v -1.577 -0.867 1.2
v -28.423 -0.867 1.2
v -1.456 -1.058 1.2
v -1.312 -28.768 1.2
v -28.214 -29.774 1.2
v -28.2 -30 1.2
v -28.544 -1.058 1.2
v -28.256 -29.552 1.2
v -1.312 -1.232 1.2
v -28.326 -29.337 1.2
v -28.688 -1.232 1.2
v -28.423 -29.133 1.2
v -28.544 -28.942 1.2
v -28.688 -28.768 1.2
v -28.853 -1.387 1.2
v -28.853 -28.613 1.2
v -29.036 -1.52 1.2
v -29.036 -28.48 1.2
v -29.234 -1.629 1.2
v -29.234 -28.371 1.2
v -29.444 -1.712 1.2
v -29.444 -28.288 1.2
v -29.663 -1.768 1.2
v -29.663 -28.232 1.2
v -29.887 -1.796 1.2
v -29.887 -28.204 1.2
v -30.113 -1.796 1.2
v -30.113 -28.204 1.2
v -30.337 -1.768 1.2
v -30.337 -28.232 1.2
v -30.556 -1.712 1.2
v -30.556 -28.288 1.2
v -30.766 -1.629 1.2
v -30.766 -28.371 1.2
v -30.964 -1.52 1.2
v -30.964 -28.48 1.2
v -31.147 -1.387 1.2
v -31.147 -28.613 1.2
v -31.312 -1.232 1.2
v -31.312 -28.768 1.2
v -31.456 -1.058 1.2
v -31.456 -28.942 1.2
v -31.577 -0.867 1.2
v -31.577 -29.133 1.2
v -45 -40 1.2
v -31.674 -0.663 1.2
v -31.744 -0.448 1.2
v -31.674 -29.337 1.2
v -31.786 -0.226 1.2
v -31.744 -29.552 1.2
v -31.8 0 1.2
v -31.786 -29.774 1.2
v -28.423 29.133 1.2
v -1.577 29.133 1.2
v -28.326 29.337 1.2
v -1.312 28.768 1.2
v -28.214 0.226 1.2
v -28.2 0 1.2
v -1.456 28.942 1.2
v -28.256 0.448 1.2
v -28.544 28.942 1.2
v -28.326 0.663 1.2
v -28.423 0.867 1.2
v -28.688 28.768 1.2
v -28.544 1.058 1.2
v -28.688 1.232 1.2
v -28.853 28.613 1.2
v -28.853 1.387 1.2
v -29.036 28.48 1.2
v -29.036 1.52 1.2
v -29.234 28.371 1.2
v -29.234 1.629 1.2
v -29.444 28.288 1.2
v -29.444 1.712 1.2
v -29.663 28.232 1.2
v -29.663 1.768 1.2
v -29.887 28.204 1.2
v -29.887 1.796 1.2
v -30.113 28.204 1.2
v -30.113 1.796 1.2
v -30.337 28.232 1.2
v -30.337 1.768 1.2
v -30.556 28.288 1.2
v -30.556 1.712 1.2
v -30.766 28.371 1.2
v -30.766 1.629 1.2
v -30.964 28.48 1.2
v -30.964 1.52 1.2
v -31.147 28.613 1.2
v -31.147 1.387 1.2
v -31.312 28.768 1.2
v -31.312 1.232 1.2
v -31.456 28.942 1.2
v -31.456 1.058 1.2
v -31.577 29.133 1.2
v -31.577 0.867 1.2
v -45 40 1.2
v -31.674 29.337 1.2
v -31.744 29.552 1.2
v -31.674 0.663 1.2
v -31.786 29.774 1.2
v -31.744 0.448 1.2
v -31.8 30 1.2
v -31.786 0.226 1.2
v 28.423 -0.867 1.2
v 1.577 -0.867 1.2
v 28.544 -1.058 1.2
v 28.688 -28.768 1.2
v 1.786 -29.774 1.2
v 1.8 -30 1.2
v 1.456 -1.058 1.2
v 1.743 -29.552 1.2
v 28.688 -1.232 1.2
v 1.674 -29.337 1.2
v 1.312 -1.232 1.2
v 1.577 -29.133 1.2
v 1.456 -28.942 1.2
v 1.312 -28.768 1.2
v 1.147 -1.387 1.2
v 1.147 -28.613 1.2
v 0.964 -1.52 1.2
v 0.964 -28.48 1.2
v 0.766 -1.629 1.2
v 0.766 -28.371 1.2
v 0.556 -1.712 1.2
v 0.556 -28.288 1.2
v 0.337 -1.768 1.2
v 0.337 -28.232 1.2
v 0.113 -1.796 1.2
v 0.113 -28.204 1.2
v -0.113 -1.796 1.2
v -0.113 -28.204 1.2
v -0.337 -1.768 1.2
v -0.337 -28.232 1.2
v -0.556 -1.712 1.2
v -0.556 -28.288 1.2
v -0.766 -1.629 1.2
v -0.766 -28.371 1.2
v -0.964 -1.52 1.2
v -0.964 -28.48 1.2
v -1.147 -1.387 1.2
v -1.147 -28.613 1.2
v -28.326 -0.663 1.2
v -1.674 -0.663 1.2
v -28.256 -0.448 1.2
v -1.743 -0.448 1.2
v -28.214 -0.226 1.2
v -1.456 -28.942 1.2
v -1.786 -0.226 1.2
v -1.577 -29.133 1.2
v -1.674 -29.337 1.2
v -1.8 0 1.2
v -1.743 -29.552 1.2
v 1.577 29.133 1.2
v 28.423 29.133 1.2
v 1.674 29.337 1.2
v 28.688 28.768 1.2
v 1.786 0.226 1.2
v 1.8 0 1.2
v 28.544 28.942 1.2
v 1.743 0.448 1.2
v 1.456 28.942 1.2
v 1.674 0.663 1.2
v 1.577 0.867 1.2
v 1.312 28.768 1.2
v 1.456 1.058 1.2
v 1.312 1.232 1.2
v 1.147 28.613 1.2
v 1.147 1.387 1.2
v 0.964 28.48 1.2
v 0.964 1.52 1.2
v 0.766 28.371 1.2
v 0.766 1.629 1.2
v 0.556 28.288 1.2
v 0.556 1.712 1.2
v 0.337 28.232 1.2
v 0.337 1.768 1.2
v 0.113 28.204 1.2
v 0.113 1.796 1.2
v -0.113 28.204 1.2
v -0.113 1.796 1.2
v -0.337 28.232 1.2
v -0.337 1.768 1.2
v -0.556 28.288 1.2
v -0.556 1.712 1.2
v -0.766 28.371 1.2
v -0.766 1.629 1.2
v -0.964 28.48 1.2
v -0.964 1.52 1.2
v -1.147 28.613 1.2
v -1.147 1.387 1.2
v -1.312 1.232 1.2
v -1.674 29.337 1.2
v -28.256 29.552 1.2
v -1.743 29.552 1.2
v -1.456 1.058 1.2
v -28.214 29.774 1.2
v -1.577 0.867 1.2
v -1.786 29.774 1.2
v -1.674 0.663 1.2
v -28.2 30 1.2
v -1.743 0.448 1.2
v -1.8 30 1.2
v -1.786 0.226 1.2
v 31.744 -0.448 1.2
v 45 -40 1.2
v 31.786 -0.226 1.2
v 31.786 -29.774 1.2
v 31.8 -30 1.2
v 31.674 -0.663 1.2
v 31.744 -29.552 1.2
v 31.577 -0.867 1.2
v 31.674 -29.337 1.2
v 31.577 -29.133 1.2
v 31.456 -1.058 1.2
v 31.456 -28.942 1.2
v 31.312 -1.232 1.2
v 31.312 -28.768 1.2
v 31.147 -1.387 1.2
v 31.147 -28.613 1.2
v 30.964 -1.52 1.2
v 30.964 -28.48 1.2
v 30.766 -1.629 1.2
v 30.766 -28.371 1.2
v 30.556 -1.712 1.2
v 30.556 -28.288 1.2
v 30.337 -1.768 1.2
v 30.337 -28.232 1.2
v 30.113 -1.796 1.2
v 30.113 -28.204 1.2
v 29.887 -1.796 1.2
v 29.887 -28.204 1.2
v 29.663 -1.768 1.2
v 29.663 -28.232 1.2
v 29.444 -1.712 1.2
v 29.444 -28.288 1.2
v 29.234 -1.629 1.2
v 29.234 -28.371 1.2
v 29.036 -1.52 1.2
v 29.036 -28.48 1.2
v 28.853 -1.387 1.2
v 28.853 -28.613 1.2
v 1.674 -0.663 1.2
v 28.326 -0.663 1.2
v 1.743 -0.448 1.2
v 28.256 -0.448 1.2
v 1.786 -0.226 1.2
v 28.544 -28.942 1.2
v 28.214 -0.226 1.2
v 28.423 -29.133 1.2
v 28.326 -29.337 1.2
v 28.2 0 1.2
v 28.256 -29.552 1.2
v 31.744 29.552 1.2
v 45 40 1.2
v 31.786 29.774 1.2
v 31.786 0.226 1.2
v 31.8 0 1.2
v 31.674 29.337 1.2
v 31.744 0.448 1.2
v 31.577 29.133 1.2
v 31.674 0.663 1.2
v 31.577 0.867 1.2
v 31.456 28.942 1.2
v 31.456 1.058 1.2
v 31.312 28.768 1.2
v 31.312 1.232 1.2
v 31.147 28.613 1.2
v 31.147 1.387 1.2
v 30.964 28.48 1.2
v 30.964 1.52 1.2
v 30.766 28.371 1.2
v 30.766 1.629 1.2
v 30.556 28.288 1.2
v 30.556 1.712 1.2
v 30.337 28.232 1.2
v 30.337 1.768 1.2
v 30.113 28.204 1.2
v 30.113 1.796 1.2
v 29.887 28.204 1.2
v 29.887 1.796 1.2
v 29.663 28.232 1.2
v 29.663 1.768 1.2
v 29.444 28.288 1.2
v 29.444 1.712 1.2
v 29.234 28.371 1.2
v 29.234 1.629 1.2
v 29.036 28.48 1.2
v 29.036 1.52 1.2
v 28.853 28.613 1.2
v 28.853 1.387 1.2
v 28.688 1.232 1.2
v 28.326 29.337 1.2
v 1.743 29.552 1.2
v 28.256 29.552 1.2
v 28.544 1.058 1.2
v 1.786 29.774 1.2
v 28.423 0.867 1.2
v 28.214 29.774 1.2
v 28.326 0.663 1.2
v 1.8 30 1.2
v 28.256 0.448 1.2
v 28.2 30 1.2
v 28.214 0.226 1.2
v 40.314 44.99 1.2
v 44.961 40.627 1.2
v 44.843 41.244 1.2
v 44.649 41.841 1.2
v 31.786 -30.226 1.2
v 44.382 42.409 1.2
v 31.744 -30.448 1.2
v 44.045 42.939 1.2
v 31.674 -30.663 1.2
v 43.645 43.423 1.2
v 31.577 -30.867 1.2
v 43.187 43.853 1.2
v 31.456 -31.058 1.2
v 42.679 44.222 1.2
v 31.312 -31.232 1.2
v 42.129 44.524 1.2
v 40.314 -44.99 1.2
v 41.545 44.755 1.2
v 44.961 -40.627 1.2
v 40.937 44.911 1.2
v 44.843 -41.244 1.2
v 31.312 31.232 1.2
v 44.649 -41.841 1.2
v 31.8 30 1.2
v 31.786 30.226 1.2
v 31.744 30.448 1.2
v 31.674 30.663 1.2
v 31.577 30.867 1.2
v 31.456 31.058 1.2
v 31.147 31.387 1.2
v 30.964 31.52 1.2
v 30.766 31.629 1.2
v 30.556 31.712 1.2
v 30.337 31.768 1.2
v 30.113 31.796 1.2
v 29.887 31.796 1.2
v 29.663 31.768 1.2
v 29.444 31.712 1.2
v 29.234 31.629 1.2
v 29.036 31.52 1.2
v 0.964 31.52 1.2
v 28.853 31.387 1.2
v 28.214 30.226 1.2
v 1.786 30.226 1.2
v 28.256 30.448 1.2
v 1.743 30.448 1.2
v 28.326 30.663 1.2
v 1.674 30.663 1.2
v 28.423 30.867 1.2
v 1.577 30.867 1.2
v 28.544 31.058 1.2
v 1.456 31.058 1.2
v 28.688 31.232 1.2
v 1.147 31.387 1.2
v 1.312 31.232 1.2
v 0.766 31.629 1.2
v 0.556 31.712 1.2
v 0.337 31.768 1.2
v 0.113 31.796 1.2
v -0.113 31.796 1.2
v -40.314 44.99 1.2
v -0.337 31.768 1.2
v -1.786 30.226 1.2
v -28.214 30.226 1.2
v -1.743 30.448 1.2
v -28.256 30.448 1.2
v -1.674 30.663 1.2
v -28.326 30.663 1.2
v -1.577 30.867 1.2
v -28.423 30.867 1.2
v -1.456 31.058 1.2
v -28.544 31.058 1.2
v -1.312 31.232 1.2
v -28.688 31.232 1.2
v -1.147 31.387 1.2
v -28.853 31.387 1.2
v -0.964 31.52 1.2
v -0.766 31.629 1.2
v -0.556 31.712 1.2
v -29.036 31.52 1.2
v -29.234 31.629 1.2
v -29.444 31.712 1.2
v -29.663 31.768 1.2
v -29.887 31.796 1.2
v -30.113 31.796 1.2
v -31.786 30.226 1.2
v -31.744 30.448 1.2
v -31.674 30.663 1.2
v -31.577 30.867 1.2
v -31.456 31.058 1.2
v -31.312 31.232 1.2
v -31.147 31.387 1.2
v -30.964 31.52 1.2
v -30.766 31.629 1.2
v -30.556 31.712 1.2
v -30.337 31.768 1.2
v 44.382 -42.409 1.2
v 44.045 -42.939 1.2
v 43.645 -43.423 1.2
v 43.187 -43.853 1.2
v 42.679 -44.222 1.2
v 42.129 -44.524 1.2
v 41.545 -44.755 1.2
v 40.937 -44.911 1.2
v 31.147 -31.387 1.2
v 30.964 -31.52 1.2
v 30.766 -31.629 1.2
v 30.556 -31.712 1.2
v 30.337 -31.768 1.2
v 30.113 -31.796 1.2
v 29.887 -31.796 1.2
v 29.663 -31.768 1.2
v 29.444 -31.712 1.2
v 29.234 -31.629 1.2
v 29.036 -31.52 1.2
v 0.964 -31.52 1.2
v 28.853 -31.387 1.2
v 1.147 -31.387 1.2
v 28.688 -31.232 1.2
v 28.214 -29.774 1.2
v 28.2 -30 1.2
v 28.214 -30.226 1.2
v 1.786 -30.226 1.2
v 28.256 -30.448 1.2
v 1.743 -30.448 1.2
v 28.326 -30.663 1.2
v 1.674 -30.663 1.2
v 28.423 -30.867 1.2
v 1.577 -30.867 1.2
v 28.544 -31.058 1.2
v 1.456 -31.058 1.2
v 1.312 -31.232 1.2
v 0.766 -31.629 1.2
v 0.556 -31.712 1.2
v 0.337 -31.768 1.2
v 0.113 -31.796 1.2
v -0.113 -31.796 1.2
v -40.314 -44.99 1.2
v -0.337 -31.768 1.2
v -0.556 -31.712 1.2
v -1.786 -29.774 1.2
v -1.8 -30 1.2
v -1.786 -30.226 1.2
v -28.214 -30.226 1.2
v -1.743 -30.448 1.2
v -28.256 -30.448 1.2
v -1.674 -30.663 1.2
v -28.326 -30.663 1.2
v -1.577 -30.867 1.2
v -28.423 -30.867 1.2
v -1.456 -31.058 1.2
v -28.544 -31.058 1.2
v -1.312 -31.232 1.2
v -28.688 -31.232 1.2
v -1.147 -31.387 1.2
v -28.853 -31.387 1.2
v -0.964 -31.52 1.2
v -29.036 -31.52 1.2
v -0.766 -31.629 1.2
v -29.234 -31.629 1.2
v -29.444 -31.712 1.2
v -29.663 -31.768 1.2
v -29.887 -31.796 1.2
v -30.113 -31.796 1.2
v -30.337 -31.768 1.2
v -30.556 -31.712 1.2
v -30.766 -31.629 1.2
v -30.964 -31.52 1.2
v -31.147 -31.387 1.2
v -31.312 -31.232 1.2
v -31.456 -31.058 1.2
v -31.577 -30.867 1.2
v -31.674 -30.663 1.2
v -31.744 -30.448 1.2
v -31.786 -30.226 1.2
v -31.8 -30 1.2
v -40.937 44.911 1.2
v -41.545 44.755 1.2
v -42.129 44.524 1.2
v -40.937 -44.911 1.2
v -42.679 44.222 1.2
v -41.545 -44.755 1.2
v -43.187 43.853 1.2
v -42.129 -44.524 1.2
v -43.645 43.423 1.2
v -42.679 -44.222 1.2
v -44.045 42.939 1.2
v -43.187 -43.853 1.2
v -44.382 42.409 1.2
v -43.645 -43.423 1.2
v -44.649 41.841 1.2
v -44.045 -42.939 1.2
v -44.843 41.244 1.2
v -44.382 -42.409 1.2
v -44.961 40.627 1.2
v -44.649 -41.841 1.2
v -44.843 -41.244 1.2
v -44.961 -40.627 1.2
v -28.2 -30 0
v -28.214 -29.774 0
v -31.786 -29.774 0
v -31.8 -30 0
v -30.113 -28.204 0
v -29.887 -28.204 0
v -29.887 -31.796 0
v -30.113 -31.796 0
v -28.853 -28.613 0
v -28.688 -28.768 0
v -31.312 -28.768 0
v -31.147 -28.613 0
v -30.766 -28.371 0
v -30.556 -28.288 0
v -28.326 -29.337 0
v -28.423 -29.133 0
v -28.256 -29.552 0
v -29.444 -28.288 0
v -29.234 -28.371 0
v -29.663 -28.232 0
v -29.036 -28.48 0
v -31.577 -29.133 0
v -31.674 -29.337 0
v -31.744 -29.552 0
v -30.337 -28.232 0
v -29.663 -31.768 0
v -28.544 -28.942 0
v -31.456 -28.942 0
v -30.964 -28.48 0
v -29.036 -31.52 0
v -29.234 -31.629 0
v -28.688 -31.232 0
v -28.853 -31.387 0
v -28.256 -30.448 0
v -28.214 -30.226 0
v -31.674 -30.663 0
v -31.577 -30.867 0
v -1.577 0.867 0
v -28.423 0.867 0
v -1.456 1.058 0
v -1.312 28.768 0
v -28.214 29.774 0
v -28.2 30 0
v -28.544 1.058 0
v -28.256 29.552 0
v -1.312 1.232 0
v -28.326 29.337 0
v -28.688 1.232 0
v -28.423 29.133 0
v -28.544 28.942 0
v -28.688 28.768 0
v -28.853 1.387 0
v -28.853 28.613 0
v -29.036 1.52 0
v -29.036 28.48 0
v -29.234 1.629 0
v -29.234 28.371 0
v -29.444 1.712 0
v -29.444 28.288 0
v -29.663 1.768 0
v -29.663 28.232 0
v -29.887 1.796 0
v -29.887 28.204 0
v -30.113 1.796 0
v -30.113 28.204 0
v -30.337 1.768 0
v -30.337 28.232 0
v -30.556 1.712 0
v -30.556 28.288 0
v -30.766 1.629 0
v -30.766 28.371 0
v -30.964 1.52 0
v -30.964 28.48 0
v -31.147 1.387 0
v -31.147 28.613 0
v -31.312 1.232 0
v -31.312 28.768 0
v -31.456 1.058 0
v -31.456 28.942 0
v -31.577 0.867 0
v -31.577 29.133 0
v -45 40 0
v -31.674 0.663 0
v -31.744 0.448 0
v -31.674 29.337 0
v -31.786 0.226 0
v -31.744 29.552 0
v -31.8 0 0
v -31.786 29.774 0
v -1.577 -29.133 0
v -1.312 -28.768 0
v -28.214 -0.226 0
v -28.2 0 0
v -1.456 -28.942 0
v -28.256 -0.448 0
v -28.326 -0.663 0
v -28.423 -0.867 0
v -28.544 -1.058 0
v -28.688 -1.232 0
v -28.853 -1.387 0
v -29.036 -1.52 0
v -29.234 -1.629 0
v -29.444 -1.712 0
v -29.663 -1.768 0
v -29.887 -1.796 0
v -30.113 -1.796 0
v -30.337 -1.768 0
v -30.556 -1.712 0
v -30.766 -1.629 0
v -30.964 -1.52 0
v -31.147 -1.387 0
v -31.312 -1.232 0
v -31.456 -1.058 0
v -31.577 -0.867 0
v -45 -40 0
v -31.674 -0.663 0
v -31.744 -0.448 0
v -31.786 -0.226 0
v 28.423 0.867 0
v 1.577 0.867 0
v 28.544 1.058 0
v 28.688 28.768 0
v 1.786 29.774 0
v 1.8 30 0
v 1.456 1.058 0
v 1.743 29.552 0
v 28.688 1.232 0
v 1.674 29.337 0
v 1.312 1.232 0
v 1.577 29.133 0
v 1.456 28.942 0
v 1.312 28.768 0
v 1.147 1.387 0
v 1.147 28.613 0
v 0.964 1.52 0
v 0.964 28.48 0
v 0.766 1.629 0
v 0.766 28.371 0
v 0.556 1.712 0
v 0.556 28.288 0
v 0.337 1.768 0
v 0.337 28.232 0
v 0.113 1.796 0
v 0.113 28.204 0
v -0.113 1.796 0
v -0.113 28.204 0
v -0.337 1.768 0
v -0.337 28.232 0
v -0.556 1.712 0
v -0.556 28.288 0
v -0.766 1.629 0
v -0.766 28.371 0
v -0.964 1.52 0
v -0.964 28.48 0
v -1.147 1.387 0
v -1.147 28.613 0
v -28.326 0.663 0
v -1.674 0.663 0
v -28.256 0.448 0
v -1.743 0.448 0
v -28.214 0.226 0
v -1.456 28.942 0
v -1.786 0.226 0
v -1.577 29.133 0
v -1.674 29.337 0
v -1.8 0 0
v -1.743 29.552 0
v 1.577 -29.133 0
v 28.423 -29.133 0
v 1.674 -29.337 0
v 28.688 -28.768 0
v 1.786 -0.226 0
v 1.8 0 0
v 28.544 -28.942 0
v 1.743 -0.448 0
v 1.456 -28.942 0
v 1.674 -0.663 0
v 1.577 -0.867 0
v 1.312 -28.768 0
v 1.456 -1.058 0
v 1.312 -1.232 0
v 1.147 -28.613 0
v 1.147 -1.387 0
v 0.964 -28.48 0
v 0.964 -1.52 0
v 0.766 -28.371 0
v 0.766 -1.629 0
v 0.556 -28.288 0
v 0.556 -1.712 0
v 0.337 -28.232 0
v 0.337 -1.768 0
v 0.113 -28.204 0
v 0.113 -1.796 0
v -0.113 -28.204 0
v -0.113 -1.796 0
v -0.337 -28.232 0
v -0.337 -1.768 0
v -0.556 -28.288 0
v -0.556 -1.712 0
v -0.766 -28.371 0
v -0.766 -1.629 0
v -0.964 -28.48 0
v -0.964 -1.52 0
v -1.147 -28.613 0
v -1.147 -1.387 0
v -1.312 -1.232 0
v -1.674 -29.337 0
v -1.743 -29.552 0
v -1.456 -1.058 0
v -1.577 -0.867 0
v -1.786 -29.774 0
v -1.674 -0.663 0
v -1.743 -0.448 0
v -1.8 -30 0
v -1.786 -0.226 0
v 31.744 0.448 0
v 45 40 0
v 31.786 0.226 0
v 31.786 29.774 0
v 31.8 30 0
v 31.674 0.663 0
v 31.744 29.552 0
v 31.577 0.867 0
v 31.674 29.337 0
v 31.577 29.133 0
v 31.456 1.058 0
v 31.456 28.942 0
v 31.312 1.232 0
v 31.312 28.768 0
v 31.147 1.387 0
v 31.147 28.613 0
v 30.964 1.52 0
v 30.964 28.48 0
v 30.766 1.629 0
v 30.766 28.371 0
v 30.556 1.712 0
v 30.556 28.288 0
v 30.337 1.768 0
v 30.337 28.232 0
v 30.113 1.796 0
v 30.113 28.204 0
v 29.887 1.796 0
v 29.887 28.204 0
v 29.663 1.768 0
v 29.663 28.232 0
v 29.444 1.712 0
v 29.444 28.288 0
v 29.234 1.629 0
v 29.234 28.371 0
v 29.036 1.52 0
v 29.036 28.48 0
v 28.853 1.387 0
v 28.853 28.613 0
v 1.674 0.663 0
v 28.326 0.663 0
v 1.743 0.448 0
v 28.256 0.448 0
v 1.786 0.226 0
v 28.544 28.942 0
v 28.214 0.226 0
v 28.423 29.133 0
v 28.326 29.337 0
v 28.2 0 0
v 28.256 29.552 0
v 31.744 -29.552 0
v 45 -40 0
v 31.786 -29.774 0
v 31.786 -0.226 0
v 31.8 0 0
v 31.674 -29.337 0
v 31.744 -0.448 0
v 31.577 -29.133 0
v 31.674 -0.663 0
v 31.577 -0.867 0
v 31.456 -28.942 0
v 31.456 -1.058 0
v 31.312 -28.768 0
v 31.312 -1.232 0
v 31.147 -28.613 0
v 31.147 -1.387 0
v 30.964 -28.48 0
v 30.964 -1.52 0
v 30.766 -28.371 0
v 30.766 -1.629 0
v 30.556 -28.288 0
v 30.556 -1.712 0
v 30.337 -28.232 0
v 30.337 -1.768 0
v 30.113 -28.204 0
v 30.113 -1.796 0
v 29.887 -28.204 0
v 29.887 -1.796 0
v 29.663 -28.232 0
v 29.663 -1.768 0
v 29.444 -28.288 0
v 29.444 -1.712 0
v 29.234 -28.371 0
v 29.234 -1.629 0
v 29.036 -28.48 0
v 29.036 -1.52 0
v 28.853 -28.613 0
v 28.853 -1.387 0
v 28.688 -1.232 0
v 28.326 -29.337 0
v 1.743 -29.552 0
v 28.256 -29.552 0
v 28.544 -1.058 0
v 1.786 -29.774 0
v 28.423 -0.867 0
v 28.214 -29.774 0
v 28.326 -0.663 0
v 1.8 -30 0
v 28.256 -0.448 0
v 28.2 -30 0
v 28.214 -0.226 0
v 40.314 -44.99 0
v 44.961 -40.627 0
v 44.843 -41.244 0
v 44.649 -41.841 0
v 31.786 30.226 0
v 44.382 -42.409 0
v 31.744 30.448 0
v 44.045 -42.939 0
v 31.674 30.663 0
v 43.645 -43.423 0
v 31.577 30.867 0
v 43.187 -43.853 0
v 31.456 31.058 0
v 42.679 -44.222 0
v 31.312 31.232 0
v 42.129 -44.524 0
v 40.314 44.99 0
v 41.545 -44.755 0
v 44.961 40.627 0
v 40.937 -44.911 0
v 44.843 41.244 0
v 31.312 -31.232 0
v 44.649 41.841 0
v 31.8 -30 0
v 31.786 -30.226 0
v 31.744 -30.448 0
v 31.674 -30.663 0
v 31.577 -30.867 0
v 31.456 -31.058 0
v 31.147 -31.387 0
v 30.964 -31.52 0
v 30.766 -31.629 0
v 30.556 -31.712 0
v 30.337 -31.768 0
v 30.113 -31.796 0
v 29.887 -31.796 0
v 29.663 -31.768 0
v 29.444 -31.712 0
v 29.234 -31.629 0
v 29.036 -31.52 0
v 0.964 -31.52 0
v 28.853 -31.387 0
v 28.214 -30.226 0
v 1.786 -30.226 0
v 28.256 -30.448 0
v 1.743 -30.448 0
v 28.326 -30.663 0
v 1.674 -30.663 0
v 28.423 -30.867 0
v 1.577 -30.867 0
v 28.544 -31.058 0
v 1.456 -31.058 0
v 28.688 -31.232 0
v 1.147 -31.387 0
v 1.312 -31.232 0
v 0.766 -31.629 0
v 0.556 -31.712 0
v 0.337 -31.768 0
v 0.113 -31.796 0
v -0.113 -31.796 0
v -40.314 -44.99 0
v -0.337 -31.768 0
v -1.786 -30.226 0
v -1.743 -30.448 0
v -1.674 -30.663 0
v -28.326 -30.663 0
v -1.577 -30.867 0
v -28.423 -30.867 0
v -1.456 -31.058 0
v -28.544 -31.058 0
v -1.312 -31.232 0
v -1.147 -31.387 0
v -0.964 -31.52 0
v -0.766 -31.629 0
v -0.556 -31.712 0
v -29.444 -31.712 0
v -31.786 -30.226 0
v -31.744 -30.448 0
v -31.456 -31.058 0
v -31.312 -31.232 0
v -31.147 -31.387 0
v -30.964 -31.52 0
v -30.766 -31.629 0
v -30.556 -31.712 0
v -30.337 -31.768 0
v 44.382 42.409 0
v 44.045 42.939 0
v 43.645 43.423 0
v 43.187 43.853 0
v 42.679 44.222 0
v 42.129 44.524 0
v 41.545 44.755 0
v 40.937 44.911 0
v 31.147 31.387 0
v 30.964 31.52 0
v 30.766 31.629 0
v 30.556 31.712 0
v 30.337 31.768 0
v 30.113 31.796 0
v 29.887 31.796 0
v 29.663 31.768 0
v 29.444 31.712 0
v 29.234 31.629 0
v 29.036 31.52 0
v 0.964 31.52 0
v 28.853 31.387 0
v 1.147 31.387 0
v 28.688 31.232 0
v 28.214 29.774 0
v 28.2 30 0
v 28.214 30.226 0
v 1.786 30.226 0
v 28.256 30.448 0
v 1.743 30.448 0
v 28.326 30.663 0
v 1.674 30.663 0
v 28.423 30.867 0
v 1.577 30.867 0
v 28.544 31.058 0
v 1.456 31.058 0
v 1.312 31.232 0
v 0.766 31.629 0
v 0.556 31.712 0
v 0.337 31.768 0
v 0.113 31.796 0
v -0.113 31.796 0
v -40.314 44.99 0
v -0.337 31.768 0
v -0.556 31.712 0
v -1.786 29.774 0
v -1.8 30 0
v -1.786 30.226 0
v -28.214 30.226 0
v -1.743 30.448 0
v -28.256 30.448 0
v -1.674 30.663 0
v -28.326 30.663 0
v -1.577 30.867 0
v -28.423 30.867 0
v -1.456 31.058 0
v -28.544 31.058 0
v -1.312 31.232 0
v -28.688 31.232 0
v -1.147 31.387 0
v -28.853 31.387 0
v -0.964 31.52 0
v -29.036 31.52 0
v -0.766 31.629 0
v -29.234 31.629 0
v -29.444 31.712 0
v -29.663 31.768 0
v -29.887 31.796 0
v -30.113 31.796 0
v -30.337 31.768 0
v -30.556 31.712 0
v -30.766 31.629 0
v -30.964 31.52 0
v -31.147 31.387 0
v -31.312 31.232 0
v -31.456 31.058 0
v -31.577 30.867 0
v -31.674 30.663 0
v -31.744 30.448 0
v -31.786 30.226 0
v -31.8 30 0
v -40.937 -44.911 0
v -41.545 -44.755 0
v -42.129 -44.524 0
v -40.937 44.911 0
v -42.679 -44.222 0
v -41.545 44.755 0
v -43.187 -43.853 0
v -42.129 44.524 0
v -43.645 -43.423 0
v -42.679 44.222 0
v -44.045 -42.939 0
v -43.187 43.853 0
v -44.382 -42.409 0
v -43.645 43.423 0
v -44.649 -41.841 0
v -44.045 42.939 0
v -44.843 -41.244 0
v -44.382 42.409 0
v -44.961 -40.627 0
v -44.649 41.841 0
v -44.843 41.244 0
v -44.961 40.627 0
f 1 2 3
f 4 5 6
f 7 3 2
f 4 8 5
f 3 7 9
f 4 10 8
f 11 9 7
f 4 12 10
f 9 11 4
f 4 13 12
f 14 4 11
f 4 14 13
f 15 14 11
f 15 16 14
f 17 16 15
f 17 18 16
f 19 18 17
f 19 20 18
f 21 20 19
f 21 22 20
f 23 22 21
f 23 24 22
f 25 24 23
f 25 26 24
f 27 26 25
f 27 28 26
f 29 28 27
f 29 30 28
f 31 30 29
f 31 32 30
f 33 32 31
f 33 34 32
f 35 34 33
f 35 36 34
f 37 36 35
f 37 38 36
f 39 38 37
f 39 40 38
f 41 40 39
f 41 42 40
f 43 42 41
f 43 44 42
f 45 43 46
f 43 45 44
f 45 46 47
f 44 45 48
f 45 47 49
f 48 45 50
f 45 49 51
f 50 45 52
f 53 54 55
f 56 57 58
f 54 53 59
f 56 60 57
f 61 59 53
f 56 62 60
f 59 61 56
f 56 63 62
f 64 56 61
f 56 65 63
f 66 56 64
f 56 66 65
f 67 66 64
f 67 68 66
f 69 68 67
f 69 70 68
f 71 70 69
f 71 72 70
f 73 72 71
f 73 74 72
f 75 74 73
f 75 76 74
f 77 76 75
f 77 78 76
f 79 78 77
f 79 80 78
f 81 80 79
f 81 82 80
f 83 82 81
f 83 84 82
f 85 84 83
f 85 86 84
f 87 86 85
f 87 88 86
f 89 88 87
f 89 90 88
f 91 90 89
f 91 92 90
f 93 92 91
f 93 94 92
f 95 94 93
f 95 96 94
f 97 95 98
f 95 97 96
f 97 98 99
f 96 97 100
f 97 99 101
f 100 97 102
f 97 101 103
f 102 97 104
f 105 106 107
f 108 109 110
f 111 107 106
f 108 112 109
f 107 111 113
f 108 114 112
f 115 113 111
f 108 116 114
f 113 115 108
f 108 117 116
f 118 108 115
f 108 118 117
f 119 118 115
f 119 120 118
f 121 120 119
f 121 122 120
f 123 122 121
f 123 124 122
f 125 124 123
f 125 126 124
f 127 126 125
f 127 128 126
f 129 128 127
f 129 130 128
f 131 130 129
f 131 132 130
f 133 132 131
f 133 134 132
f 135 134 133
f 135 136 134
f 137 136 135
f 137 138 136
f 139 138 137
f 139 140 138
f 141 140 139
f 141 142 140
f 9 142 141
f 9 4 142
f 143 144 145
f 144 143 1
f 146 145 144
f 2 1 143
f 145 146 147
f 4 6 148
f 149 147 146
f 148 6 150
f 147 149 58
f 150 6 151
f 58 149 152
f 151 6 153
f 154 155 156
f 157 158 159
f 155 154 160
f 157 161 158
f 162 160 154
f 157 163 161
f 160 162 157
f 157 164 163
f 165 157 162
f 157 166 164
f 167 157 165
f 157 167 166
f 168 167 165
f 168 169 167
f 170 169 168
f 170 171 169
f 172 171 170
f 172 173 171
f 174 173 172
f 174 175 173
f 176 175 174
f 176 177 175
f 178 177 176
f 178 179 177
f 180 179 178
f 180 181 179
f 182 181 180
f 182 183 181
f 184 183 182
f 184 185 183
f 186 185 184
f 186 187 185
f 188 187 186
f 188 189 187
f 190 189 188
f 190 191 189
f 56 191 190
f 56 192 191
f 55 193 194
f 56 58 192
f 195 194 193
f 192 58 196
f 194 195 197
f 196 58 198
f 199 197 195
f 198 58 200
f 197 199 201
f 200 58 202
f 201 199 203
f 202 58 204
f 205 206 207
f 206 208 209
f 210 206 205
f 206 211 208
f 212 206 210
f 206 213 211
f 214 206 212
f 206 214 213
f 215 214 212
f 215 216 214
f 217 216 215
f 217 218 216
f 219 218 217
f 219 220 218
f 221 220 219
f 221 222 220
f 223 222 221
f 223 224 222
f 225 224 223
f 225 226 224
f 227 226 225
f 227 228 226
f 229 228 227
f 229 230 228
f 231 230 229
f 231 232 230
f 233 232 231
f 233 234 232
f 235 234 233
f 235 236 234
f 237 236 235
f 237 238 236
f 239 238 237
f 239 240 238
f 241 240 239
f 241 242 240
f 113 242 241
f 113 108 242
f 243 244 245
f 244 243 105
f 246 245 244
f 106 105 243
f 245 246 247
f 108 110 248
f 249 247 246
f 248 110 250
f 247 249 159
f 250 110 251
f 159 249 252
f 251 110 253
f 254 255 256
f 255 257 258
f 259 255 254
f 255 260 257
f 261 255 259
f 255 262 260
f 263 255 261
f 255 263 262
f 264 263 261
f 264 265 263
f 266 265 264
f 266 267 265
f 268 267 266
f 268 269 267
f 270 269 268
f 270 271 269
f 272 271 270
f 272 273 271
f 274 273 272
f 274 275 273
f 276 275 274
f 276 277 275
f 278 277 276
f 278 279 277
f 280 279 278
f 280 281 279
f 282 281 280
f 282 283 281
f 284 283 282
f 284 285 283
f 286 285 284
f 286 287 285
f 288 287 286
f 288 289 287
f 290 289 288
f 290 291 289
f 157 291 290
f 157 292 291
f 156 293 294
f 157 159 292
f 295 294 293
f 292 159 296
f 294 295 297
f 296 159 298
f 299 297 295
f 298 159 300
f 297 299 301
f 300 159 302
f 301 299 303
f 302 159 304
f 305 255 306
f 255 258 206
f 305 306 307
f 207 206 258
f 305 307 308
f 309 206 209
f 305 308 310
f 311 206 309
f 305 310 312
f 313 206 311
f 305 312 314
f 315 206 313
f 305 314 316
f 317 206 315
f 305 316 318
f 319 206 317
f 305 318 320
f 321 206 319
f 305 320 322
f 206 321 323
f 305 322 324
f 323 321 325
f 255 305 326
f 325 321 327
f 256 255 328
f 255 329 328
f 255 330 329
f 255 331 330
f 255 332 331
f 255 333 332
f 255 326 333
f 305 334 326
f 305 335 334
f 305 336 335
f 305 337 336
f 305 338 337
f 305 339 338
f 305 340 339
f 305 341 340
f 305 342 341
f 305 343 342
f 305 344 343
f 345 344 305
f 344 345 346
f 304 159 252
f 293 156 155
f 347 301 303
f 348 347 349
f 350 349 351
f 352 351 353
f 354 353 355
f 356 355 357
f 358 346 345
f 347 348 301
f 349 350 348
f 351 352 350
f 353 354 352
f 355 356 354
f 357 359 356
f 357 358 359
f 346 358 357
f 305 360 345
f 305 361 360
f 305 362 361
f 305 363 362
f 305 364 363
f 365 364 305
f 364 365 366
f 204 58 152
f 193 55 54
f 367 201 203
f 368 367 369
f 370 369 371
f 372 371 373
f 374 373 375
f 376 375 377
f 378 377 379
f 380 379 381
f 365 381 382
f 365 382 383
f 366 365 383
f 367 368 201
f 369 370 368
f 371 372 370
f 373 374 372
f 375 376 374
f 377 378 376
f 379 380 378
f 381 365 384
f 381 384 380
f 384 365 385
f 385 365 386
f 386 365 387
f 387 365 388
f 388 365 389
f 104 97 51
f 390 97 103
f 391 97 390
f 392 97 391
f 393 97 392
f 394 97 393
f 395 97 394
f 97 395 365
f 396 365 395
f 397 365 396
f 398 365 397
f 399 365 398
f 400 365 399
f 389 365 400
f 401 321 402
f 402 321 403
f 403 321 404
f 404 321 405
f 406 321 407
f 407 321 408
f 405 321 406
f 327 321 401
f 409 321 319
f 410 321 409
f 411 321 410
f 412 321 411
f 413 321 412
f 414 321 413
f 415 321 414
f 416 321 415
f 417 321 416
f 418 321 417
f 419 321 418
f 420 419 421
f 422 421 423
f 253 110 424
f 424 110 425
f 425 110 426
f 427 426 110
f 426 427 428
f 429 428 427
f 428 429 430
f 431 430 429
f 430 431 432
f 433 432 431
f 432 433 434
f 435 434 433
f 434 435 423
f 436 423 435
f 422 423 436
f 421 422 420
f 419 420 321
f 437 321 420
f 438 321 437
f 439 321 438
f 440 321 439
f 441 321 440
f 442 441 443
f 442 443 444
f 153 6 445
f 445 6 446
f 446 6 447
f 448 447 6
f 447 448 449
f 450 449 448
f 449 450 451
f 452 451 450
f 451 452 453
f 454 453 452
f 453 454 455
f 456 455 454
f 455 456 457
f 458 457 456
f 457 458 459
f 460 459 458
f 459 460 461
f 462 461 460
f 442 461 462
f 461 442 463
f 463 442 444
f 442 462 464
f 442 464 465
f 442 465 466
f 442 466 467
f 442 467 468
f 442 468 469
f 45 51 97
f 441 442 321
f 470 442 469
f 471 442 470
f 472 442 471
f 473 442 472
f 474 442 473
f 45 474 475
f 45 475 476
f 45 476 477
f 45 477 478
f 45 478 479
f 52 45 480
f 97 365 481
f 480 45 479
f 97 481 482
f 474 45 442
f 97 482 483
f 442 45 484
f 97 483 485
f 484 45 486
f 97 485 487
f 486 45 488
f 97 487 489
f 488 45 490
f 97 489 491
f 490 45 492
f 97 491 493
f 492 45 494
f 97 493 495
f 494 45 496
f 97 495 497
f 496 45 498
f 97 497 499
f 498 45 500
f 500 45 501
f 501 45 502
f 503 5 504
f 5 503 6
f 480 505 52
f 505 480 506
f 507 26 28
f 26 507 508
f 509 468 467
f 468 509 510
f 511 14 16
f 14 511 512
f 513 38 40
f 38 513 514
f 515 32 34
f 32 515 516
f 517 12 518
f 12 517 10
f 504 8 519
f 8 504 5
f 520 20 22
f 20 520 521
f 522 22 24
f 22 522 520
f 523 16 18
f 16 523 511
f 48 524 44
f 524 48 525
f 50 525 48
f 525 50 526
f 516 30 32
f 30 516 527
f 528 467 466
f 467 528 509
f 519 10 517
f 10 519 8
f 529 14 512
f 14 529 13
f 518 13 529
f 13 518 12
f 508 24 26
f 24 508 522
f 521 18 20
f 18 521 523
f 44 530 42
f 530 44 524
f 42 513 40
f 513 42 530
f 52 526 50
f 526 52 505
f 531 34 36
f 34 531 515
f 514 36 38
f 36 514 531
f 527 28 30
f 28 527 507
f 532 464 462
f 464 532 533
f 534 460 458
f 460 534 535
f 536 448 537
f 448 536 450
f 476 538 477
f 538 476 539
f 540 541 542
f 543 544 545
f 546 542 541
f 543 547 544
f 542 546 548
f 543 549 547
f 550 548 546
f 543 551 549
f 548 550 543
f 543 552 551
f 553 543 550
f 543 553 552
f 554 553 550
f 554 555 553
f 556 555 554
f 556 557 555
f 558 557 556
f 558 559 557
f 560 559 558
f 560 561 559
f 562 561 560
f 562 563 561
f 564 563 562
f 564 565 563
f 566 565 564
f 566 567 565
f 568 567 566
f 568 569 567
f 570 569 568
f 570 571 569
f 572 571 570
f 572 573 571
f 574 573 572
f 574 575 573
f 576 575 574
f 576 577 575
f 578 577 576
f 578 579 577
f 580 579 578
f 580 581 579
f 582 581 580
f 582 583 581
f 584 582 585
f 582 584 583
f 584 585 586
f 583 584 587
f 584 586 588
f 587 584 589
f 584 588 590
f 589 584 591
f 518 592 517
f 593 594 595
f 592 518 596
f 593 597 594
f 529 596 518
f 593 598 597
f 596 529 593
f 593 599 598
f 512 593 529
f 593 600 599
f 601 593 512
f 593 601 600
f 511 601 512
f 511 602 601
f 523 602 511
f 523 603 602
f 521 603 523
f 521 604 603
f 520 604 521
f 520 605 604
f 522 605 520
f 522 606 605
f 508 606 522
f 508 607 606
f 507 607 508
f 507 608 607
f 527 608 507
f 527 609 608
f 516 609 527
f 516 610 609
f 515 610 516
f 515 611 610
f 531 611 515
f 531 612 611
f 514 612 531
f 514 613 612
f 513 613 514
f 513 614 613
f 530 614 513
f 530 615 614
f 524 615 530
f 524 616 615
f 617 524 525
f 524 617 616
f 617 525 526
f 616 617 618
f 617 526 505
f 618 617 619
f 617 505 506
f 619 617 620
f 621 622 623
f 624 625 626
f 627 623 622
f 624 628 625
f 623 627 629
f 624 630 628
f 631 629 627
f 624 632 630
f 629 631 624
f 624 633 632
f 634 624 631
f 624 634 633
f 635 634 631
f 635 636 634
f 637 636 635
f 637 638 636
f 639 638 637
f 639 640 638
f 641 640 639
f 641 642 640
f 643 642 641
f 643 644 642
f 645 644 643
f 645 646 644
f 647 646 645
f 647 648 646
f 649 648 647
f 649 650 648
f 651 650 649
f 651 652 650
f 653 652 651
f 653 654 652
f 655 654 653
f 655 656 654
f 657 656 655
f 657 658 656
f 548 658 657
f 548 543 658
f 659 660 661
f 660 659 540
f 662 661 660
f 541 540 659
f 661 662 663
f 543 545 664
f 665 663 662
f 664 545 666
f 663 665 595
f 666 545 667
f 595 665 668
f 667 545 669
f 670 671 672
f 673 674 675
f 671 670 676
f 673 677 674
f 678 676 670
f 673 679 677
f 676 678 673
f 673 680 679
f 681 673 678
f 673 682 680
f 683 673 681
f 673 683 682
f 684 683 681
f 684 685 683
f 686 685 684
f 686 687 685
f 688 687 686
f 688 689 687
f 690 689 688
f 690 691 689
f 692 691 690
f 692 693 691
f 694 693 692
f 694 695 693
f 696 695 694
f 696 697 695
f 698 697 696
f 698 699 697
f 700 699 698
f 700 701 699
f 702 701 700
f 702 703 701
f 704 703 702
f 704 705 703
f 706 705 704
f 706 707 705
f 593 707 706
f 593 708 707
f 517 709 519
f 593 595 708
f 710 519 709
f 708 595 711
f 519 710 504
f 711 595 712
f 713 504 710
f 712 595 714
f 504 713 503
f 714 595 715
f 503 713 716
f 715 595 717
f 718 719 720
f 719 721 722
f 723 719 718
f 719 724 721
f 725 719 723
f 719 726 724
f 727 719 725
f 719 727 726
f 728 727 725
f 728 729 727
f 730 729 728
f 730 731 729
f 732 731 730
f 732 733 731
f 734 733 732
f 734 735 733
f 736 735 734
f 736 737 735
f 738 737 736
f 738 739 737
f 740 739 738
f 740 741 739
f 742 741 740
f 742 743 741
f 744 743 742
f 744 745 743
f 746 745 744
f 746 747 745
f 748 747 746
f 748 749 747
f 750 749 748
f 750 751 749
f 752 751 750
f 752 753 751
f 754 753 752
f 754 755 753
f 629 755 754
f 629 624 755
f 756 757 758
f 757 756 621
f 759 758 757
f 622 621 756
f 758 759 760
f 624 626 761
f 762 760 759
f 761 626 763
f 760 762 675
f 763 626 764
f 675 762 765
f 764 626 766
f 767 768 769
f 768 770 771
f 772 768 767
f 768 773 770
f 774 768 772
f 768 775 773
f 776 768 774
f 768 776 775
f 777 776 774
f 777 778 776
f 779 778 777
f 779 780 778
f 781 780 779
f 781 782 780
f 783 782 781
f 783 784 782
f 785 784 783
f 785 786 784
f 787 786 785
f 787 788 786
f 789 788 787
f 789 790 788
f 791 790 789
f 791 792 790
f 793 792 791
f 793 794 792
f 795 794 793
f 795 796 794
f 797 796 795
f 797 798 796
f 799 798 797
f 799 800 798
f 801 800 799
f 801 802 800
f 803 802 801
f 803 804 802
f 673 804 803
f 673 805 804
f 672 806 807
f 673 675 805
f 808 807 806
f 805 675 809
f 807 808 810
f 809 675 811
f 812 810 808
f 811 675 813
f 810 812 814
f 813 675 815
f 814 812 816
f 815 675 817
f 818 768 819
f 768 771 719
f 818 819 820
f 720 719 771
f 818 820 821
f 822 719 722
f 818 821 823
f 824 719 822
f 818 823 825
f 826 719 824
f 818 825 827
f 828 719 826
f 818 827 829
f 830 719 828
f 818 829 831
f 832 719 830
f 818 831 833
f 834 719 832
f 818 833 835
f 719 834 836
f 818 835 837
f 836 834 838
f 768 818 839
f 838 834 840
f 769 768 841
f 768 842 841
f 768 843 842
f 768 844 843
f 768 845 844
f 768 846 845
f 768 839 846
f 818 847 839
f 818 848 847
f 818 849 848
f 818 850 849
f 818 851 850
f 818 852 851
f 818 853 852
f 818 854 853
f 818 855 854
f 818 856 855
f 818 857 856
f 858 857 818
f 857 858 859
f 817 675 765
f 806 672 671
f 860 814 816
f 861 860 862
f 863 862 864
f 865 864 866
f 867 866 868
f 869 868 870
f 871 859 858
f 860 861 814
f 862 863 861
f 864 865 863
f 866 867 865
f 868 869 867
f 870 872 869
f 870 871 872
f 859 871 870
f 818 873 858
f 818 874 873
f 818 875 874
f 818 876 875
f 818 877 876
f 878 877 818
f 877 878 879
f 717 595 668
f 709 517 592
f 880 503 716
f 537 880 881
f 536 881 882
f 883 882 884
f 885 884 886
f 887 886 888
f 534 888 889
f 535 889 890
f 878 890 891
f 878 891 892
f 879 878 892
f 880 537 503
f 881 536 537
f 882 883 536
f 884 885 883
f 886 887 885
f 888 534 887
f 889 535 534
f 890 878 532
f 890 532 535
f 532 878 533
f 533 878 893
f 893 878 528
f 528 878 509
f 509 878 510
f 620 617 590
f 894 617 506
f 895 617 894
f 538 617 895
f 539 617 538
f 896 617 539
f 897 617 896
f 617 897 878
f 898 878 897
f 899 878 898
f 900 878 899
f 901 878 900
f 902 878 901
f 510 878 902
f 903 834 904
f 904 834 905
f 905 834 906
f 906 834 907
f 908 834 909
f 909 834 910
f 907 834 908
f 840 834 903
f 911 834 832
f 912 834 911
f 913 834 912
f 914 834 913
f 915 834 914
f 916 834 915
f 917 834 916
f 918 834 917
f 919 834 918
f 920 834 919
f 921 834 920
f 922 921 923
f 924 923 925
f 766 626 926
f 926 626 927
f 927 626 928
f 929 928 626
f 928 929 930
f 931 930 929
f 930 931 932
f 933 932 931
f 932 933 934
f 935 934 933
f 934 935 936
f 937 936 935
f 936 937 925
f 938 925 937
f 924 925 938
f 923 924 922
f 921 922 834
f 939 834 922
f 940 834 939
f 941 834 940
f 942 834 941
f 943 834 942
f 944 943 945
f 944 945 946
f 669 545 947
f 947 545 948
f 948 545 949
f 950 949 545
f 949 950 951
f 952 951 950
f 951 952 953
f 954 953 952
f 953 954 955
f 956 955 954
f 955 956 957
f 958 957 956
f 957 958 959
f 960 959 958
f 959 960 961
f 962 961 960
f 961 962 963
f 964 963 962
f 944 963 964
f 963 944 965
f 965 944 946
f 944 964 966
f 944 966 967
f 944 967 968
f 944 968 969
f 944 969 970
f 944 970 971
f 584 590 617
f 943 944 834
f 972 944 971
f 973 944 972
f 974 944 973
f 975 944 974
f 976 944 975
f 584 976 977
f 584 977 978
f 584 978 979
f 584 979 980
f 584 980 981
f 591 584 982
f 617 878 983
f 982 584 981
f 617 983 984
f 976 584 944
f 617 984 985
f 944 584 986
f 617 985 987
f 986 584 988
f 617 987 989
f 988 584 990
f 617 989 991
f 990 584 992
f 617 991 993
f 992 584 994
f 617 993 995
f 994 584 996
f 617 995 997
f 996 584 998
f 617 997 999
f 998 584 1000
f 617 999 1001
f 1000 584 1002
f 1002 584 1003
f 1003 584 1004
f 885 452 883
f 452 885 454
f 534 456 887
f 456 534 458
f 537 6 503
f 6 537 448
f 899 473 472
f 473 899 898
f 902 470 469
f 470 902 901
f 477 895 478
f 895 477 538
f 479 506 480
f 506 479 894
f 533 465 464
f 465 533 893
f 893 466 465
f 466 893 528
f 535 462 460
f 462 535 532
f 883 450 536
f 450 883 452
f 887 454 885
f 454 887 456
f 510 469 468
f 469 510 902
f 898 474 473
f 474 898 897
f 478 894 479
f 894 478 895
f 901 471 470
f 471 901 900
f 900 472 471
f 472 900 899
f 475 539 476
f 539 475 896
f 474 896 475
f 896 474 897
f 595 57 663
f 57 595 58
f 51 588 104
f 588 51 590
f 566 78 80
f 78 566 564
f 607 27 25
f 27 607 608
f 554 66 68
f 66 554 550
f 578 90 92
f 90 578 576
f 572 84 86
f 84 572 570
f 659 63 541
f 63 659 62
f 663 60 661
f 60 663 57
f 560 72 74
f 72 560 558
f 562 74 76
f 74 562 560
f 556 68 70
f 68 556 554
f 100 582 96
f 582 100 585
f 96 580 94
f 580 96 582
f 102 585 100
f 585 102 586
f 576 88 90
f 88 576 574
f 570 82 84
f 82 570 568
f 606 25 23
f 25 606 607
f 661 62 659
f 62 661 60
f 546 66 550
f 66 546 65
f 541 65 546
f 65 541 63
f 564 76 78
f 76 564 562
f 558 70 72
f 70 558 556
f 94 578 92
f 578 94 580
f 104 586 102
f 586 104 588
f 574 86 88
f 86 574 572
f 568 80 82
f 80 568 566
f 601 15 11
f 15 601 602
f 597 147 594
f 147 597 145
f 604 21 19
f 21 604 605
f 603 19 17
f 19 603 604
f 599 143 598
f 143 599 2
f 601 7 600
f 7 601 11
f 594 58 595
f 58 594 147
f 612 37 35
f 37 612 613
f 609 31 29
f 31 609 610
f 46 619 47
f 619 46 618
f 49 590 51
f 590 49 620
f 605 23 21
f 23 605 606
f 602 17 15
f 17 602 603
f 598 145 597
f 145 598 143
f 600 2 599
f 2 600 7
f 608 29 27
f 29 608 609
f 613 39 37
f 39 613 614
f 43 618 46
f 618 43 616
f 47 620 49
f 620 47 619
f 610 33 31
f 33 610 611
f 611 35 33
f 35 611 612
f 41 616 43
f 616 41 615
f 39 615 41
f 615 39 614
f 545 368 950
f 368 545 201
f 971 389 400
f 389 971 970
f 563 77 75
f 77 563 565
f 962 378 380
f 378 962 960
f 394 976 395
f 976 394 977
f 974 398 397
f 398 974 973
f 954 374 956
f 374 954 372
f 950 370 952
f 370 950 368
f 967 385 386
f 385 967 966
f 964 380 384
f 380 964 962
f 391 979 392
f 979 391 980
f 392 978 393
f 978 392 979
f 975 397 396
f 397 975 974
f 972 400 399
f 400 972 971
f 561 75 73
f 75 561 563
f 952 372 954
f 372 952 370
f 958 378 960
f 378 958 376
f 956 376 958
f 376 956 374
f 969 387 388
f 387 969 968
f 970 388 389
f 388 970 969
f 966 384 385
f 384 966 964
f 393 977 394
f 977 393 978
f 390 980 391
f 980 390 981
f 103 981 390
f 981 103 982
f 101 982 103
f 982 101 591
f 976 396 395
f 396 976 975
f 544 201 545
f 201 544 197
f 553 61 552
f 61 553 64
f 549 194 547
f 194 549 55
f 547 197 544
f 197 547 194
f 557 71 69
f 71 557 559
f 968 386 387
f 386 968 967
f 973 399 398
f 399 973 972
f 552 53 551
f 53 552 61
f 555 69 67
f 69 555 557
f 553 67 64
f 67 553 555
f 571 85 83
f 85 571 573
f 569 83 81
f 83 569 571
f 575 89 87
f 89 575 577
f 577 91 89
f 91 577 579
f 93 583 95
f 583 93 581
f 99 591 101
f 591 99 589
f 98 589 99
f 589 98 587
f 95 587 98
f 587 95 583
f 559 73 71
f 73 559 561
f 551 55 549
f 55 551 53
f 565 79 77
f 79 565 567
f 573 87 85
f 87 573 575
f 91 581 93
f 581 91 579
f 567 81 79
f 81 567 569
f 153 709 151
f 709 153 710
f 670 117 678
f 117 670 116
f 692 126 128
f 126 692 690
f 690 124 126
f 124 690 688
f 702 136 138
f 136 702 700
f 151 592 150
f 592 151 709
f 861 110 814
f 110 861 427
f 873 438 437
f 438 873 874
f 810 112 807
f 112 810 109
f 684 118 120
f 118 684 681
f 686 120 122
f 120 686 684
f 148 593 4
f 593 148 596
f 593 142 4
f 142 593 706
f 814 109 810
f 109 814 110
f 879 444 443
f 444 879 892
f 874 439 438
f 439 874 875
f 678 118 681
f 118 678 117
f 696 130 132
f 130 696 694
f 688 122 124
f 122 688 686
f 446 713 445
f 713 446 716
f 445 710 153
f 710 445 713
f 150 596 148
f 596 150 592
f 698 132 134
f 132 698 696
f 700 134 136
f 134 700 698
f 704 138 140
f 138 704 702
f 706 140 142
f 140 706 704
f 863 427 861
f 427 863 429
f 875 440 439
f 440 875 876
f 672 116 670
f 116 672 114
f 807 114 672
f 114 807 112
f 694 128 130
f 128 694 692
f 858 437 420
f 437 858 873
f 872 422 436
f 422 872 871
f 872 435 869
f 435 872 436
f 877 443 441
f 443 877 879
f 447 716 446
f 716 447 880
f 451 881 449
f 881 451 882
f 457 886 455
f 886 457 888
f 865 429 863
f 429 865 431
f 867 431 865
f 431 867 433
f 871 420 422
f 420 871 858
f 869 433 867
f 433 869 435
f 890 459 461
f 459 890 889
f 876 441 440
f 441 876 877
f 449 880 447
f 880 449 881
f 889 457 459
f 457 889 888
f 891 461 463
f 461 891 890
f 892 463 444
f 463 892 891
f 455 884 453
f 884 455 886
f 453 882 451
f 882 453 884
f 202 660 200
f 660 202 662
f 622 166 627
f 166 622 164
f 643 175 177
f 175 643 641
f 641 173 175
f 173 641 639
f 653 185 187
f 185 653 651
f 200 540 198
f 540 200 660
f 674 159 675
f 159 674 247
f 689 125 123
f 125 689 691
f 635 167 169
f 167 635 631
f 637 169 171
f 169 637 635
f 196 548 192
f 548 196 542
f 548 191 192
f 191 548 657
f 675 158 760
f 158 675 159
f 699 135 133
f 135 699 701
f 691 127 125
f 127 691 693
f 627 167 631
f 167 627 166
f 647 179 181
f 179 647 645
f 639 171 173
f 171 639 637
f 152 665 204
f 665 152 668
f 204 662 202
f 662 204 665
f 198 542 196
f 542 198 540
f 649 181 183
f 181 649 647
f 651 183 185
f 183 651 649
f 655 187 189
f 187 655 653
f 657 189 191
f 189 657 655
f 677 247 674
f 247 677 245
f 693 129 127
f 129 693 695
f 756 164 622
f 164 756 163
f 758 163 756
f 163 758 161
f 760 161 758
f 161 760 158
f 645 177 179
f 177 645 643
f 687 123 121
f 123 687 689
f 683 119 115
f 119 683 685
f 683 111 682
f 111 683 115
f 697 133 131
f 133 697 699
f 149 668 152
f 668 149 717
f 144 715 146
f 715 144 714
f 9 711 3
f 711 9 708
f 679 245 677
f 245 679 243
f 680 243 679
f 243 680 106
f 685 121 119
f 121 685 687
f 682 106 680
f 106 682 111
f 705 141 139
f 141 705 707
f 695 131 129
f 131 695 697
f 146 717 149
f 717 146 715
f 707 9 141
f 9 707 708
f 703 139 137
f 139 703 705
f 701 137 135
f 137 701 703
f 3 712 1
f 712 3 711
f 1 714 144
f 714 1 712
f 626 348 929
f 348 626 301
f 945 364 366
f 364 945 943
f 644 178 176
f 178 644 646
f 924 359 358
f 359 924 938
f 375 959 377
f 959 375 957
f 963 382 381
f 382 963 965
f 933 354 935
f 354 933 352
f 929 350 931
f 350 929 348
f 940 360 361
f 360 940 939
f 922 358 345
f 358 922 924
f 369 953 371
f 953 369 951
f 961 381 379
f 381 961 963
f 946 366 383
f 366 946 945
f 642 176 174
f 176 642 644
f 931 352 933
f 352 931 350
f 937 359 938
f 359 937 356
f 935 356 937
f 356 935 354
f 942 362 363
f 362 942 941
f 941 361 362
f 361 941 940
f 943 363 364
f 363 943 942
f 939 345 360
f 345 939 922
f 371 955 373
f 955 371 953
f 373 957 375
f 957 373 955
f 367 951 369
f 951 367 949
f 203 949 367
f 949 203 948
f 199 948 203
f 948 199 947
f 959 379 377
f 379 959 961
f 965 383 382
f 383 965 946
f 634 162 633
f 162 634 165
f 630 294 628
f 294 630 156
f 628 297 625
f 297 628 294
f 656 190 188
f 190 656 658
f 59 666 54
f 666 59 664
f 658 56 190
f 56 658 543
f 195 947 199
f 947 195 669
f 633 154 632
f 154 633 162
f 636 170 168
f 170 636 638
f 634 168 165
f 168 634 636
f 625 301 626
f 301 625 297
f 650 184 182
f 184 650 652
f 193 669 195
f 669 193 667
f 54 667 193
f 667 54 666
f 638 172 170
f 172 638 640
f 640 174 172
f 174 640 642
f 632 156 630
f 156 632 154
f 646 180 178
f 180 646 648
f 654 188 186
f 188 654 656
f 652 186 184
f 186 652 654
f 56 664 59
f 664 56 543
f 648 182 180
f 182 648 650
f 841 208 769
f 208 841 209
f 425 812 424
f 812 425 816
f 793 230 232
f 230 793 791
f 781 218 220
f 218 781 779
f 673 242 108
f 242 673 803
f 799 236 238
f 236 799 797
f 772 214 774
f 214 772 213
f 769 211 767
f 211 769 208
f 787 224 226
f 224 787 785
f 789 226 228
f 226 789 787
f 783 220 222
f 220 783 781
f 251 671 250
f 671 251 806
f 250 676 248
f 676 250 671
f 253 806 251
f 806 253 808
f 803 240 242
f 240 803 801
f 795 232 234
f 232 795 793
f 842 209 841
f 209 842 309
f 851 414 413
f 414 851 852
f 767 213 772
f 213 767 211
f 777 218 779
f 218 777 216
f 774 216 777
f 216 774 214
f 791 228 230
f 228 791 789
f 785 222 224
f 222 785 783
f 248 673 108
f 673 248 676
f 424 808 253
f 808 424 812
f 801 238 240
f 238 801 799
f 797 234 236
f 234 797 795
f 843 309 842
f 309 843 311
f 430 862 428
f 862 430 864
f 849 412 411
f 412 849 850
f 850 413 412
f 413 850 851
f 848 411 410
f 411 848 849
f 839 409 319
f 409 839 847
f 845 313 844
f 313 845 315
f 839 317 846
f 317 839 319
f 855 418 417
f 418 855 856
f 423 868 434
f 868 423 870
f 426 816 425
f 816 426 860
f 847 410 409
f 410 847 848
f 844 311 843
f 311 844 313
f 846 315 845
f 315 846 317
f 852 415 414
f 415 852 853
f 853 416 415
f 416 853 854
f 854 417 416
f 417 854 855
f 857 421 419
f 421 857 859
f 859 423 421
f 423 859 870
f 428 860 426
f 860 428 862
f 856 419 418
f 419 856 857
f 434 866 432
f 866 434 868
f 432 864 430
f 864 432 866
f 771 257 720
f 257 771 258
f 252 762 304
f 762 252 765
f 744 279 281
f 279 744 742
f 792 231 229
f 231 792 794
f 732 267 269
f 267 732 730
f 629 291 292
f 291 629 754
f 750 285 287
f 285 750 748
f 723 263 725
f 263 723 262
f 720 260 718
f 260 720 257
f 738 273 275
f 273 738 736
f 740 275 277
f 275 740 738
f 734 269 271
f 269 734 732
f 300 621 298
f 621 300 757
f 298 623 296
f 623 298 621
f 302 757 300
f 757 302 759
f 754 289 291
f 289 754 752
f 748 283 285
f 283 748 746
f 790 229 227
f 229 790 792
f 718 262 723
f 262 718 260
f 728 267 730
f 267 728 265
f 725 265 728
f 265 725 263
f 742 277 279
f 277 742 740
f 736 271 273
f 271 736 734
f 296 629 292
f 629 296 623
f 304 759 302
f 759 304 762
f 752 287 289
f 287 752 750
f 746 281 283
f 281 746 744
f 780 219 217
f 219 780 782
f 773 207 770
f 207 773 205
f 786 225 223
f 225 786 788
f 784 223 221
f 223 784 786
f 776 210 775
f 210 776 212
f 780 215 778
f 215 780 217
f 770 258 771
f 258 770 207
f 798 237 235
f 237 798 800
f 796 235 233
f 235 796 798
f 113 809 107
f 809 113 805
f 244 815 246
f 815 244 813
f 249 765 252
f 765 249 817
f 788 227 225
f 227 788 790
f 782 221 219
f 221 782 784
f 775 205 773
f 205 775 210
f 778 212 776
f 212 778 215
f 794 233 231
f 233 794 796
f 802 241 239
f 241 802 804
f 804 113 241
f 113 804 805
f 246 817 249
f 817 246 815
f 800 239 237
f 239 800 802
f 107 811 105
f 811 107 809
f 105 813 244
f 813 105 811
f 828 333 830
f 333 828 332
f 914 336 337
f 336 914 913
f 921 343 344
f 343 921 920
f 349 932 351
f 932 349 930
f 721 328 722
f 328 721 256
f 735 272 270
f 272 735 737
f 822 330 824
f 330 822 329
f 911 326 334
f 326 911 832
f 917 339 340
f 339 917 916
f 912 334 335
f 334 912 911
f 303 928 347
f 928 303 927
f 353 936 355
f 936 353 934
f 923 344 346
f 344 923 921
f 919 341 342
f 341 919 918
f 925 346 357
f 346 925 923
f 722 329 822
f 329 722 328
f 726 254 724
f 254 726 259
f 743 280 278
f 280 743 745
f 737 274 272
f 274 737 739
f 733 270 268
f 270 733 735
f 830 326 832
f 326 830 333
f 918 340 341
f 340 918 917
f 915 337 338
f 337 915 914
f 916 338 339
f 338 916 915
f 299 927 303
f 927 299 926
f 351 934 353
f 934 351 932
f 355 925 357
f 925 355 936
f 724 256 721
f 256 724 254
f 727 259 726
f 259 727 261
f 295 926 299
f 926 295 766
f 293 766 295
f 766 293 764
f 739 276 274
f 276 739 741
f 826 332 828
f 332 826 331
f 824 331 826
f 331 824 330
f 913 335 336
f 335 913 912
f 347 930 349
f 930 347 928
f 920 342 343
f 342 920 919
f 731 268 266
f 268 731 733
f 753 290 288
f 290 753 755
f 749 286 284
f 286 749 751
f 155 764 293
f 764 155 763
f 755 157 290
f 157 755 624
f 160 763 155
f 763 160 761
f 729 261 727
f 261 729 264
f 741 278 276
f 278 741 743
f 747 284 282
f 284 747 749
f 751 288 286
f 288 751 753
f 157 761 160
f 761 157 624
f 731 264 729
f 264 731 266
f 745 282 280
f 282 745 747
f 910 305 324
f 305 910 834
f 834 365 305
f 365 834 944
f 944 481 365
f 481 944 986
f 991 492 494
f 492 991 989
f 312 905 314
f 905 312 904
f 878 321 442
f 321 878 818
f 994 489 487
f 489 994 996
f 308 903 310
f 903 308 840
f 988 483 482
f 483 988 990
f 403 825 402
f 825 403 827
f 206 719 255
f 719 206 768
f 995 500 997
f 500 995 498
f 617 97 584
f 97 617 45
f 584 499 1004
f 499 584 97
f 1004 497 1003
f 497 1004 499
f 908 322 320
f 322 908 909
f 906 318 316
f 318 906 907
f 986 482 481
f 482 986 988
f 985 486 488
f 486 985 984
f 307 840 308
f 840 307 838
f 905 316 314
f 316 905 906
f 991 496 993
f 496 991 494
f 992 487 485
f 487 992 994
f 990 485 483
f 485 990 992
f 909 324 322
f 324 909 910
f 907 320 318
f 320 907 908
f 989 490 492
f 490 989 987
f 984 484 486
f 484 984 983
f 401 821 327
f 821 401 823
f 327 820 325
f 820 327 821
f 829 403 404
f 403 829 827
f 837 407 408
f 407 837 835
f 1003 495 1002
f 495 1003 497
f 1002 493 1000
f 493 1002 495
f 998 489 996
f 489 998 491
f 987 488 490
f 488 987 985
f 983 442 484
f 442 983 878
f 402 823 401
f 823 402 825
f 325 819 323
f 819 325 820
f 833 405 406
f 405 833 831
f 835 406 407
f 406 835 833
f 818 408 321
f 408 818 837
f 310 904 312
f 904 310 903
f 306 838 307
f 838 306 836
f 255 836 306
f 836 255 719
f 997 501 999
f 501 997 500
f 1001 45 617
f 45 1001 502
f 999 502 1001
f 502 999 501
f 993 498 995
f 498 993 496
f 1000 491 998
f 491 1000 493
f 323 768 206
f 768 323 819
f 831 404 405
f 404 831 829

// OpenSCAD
$fn = 50;


difference() {
	union() {
		hull() {
			translate(v = [-40.0000000000, 40.0000000000, 0]) {
				cylinder(h = 30, r = 5);
			}
			translate(v = [40.0000000000, 40.0000000000, 0]) {
				cylinder(h = 30, r = 5);
			}
			translate(v = [-40.0000000000, -40.0000000000, 0]) {
				cylinder(h = 30, r = 5);
			}
			translate(v = [40.0000000000, -40.0000000000, 0]) {
				cylinder(h = 30, r = 5);
			}
		}
	}
	union() {
		translate(v = [0, 0, 1.2000000000]) {
			hull() {
				translate(v = [-40.0000000000, 40.0000000000, 0]) {
					cylinder(h = 28.8000000000, r = 3.8000000000);
				}
				translate(v = [40.0000000000, 40.0000000000, 0]) {
					cylinder(h = 28.8000000000, r = 3.8000000000);
				}
				translate(v = [-40.0000000000, -40.0000000000, 0]) {
					cylinder(h = 28.8000000000, r = 3.8000000000);
				}
				translate(v = [40.0000000000, -40.0000000000, 0]) {
					cylinder(h = 28.8000000000, r = 3.8000000000);
				}
			}
		}
		#translate(v = [-30.0000000000, -30.0000000000, 0]) {
			cylinder(h = 1.2000000000, r = 1.8000000000);
		}
		#translate(v = [-30.0000000000, 0.0000000000, 0]) {
			cylinder(h = 1.2000000000, r = 1.8000000000);
		}
		#translate(v = [-30.0000000000, 30.0000000000, 0]) {
			cylinder(h = 1.2000000000, r = 1.8000000000);
		}
		#translate(v = [0.0000000000, -30.0000000000, 0]) {
			cylinder(h = 1.2000000000, r = 1.8000000000);
		}
		#cylinder(h = 1.2000000000, r = 1.8000000000);
		#translate(v = [0.0000000000, 30.0000000000, 0]) {
			cylinder(h = 1.2000000000, r = 1.8000000000);
		}
		#translate(v = [30.0000000000, -30.0000000000, 0]) {
			cylinder(h = 1.2000000000, r = 1.8000000000);
		}
		#translate(v = [30.0000000000, 0.0000000000, 0]) {
			cylinder(h = 1.2000000000, r = 1.8000000000);
		}
		#translate(v = [30.0000000000, 30.0000000000, 0]) {
			cylinder(h = 1.2000000000, r = 1.8000000000);
		}
		translate(v = [-250.0000000000, -250.0000000000, 1.2000000000]) {
			cube(size = [500, 500, 500]);
		}
		translate(v = [-250.0000000000, -250.0000000000, 1.2000000000]) {
			cube(size = [500, 500, 500]);
		}
		translate(v = [-250.0000000000, -250.0000000000, 1.2000000000]) {
			cube(size = [500, 500, 500]);
		}
	}
}
